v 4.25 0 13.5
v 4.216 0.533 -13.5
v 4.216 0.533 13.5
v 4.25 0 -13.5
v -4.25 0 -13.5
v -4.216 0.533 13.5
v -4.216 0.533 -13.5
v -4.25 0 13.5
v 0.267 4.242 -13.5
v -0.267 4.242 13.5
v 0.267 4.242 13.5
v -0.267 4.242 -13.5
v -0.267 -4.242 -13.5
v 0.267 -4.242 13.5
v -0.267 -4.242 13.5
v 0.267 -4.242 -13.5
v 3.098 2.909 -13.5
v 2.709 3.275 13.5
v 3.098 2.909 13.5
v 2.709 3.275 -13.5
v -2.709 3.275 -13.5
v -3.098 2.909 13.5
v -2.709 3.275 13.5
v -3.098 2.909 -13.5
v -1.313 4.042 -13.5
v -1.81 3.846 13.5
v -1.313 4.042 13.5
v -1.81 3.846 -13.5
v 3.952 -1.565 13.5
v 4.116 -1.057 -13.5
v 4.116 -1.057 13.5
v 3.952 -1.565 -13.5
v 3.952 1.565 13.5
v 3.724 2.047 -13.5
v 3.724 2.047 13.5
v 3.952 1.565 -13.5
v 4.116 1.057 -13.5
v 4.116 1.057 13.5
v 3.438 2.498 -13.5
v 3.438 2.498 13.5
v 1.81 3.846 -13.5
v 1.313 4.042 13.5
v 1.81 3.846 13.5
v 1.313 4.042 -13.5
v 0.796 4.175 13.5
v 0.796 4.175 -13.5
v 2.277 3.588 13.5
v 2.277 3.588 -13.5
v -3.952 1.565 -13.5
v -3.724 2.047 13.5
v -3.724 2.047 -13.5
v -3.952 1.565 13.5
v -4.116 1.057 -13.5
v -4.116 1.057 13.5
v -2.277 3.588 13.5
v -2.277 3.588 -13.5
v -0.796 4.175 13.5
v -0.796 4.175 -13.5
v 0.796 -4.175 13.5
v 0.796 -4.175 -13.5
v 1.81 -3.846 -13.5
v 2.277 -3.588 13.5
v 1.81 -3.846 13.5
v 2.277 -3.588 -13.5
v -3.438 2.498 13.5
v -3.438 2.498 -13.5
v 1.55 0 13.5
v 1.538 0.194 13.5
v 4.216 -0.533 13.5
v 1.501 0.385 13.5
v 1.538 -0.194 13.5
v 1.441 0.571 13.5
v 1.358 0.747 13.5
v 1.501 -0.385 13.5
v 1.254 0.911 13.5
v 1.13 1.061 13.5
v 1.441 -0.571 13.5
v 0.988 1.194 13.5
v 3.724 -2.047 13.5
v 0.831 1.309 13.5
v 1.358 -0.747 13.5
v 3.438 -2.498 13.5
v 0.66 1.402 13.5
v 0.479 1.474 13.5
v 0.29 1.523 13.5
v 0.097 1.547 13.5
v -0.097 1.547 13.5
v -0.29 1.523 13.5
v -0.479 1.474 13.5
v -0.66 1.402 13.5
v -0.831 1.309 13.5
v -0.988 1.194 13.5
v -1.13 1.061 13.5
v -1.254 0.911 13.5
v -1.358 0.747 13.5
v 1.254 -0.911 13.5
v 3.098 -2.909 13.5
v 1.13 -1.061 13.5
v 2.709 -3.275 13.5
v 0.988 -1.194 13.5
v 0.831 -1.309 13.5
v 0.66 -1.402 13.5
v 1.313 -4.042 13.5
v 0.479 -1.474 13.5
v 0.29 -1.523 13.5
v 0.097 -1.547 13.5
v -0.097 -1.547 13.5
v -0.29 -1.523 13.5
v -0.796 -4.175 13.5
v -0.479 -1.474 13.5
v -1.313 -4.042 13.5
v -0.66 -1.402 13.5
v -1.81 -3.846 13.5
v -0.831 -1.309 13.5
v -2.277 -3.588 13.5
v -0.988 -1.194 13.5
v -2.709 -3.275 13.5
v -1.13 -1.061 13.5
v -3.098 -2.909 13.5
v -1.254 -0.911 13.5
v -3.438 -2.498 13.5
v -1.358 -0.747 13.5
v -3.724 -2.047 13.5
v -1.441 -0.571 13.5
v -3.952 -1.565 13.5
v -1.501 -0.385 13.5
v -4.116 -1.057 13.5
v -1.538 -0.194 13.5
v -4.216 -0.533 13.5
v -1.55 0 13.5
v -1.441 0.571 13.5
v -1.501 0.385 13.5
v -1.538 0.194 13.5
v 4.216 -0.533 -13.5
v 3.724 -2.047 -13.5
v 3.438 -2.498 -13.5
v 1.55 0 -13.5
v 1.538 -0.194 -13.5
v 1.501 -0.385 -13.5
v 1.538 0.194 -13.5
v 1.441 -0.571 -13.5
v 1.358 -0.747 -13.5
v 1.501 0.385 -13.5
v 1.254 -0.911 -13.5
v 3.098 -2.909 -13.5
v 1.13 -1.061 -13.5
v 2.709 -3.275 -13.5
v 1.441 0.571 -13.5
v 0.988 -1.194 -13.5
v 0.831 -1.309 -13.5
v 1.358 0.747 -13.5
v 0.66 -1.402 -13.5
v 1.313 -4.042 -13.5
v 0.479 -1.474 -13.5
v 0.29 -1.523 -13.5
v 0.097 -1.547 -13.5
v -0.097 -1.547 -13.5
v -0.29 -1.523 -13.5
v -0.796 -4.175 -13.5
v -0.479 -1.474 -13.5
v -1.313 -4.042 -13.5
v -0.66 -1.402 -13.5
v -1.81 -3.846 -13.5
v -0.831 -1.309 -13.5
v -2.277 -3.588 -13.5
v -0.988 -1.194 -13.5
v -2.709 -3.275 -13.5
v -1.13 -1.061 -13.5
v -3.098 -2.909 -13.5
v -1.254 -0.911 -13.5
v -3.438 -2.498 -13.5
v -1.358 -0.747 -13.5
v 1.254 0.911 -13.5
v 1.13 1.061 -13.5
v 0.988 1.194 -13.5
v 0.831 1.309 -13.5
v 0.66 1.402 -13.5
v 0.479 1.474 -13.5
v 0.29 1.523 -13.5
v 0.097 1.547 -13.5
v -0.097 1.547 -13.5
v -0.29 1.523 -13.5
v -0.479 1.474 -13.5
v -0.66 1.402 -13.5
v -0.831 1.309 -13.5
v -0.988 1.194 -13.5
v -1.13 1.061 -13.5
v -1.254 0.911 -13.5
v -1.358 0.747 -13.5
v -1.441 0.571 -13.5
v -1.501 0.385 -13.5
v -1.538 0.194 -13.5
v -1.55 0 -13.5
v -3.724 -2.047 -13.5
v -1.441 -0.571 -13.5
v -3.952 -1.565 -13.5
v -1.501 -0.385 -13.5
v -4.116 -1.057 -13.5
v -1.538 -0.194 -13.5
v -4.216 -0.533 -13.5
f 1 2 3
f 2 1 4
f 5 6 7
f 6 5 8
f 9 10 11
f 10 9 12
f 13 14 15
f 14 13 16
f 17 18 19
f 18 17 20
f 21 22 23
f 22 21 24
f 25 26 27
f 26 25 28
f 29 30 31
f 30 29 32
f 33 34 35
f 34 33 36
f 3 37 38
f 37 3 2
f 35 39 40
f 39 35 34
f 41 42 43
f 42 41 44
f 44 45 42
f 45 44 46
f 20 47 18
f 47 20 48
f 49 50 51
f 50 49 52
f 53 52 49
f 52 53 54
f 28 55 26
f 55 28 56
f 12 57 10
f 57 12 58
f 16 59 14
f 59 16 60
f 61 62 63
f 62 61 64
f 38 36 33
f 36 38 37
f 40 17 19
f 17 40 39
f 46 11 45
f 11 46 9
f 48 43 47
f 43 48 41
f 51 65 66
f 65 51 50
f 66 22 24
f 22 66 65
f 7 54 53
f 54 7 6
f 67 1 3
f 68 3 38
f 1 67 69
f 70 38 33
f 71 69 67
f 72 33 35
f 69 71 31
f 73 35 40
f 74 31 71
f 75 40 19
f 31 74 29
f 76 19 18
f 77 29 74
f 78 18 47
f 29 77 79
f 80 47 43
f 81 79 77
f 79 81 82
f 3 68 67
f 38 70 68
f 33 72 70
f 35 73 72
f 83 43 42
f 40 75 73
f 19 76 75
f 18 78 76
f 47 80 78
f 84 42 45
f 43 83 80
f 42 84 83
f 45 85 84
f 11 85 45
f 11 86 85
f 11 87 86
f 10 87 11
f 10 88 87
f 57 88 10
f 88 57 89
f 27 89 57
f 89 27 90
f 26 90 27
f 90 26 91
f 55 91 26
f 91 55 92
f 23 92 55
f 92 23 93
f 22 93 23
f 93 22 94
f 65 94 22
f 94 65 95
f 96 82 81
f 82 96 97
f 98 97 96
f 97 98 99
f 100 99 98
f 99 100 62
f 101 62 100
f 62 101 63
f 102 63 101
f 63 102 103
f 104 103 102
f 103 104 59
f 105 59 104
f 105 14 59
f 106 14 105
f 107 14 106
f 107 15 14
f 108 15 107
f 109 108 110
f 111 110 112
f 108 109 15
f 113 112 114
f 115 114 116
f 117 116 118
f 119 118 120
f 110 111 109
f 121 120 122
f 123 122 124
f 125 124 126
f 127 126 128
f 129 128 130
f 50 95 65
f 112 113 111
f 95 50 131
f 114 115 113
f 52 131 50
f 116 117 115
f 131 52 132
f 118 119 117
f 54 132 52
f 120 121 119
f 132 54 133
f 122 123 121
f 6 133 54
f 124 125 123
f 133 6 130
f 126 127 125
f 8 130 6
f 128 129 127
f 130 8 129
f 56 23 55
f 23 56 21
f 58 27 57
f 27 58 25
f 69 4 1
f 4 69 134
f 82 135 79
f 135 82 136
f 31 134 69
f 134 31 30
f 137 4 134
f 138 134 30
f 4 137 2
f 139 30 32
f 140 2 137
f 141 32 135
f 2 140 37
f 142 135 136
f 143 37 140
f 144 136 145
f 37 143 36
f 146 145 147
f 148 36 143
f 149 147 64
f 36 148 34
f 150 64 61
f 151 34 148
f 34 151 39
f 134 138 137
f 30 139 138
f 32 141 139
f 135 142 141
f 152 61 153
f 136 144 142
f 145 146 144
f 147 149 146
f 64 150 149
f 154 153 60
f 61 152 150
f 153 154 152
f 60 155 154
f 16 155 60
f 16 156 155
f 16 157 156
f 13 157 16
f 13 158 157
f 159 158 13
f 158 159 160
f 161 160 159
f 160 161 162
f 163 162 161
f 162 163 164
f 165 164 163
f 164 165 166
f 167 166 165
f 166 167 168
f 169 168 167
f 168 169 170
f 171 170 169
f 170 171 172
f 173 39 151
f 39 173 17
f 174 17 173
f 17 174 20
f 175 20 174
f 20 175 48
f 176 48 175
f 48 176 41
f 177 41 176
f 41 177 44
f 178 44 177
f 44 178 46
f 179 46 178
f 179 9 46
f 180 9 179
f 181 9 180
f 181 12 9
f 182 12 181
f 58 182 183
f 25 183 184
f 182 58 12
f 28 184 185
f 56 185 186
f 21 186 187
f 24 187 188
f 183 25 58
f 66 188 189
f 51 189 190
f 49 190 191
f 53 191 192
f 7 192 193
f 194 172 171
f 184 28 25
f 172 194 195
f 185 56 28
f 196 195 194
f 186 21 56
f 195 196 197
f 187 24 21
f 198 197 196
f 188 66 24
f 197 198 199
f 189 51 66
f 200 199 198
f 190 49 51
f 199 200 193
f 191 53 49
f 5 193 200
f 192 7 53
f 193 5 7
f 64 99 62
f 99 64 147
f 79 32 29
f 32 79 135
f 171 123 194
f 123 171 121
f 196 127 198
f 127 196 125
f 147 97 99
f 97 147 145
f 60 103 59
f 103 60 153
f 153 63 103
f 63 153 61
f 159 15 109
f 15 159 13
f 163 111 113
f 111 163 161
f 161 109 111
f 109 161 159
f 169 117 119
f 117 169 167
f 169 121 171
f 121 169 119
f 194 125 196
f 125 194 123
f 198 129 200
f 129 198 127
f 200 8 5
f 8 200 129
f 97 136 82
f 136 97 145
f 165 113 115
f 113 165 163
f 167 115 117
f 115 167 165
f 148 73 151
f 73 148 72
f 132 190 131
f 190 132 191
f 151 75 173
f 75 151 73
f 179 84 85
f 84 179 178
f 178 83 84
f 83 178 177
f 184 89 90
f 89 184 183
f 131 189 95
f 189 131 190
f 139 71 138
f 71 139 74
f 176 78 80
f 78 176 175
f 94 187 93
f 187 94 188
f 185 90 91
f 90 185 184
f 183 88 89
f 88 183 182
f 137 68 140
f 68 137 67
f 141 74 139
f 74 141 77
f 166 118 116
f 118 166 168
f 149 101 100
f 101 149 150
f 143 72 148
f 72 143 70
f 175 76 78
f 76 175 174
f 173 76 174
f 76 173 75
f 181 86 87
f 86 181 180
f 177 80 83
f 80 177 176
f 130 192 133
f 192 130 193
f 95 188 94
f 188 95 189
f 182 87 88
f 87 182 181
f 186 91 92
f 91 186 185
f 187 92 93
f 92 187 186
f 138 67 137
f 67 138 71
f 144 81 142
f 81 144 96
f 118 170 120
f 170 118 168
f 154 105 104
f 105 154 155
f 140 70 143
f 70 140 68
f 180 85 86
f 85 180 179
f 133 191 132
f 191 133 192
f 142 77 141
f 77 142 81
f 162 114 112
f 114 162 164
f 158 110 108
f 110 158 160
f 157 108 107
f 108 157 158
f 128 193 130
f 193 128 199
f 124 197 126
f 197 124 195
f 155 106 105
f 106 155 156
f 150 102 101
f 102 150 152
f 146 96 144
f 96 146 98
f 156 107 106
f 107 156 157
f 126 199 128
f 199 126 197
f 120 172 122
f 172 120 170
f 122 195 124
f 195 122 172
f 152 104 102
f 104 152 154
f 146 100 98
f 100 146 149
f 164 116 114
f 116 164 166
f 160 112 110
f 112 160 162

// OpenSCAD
$fn = 50;


difference() {
	union() {
		translate(v = [0, 0, -13.5000000000]) {
			cylinder(h = 27, r = 4.2500000000);
		}
	}
	union() {
		translate(v = [0, 0, -100.0000000000]) {
			cylinder(h = 200, r = 1.5500000000);
		}
	}
}
